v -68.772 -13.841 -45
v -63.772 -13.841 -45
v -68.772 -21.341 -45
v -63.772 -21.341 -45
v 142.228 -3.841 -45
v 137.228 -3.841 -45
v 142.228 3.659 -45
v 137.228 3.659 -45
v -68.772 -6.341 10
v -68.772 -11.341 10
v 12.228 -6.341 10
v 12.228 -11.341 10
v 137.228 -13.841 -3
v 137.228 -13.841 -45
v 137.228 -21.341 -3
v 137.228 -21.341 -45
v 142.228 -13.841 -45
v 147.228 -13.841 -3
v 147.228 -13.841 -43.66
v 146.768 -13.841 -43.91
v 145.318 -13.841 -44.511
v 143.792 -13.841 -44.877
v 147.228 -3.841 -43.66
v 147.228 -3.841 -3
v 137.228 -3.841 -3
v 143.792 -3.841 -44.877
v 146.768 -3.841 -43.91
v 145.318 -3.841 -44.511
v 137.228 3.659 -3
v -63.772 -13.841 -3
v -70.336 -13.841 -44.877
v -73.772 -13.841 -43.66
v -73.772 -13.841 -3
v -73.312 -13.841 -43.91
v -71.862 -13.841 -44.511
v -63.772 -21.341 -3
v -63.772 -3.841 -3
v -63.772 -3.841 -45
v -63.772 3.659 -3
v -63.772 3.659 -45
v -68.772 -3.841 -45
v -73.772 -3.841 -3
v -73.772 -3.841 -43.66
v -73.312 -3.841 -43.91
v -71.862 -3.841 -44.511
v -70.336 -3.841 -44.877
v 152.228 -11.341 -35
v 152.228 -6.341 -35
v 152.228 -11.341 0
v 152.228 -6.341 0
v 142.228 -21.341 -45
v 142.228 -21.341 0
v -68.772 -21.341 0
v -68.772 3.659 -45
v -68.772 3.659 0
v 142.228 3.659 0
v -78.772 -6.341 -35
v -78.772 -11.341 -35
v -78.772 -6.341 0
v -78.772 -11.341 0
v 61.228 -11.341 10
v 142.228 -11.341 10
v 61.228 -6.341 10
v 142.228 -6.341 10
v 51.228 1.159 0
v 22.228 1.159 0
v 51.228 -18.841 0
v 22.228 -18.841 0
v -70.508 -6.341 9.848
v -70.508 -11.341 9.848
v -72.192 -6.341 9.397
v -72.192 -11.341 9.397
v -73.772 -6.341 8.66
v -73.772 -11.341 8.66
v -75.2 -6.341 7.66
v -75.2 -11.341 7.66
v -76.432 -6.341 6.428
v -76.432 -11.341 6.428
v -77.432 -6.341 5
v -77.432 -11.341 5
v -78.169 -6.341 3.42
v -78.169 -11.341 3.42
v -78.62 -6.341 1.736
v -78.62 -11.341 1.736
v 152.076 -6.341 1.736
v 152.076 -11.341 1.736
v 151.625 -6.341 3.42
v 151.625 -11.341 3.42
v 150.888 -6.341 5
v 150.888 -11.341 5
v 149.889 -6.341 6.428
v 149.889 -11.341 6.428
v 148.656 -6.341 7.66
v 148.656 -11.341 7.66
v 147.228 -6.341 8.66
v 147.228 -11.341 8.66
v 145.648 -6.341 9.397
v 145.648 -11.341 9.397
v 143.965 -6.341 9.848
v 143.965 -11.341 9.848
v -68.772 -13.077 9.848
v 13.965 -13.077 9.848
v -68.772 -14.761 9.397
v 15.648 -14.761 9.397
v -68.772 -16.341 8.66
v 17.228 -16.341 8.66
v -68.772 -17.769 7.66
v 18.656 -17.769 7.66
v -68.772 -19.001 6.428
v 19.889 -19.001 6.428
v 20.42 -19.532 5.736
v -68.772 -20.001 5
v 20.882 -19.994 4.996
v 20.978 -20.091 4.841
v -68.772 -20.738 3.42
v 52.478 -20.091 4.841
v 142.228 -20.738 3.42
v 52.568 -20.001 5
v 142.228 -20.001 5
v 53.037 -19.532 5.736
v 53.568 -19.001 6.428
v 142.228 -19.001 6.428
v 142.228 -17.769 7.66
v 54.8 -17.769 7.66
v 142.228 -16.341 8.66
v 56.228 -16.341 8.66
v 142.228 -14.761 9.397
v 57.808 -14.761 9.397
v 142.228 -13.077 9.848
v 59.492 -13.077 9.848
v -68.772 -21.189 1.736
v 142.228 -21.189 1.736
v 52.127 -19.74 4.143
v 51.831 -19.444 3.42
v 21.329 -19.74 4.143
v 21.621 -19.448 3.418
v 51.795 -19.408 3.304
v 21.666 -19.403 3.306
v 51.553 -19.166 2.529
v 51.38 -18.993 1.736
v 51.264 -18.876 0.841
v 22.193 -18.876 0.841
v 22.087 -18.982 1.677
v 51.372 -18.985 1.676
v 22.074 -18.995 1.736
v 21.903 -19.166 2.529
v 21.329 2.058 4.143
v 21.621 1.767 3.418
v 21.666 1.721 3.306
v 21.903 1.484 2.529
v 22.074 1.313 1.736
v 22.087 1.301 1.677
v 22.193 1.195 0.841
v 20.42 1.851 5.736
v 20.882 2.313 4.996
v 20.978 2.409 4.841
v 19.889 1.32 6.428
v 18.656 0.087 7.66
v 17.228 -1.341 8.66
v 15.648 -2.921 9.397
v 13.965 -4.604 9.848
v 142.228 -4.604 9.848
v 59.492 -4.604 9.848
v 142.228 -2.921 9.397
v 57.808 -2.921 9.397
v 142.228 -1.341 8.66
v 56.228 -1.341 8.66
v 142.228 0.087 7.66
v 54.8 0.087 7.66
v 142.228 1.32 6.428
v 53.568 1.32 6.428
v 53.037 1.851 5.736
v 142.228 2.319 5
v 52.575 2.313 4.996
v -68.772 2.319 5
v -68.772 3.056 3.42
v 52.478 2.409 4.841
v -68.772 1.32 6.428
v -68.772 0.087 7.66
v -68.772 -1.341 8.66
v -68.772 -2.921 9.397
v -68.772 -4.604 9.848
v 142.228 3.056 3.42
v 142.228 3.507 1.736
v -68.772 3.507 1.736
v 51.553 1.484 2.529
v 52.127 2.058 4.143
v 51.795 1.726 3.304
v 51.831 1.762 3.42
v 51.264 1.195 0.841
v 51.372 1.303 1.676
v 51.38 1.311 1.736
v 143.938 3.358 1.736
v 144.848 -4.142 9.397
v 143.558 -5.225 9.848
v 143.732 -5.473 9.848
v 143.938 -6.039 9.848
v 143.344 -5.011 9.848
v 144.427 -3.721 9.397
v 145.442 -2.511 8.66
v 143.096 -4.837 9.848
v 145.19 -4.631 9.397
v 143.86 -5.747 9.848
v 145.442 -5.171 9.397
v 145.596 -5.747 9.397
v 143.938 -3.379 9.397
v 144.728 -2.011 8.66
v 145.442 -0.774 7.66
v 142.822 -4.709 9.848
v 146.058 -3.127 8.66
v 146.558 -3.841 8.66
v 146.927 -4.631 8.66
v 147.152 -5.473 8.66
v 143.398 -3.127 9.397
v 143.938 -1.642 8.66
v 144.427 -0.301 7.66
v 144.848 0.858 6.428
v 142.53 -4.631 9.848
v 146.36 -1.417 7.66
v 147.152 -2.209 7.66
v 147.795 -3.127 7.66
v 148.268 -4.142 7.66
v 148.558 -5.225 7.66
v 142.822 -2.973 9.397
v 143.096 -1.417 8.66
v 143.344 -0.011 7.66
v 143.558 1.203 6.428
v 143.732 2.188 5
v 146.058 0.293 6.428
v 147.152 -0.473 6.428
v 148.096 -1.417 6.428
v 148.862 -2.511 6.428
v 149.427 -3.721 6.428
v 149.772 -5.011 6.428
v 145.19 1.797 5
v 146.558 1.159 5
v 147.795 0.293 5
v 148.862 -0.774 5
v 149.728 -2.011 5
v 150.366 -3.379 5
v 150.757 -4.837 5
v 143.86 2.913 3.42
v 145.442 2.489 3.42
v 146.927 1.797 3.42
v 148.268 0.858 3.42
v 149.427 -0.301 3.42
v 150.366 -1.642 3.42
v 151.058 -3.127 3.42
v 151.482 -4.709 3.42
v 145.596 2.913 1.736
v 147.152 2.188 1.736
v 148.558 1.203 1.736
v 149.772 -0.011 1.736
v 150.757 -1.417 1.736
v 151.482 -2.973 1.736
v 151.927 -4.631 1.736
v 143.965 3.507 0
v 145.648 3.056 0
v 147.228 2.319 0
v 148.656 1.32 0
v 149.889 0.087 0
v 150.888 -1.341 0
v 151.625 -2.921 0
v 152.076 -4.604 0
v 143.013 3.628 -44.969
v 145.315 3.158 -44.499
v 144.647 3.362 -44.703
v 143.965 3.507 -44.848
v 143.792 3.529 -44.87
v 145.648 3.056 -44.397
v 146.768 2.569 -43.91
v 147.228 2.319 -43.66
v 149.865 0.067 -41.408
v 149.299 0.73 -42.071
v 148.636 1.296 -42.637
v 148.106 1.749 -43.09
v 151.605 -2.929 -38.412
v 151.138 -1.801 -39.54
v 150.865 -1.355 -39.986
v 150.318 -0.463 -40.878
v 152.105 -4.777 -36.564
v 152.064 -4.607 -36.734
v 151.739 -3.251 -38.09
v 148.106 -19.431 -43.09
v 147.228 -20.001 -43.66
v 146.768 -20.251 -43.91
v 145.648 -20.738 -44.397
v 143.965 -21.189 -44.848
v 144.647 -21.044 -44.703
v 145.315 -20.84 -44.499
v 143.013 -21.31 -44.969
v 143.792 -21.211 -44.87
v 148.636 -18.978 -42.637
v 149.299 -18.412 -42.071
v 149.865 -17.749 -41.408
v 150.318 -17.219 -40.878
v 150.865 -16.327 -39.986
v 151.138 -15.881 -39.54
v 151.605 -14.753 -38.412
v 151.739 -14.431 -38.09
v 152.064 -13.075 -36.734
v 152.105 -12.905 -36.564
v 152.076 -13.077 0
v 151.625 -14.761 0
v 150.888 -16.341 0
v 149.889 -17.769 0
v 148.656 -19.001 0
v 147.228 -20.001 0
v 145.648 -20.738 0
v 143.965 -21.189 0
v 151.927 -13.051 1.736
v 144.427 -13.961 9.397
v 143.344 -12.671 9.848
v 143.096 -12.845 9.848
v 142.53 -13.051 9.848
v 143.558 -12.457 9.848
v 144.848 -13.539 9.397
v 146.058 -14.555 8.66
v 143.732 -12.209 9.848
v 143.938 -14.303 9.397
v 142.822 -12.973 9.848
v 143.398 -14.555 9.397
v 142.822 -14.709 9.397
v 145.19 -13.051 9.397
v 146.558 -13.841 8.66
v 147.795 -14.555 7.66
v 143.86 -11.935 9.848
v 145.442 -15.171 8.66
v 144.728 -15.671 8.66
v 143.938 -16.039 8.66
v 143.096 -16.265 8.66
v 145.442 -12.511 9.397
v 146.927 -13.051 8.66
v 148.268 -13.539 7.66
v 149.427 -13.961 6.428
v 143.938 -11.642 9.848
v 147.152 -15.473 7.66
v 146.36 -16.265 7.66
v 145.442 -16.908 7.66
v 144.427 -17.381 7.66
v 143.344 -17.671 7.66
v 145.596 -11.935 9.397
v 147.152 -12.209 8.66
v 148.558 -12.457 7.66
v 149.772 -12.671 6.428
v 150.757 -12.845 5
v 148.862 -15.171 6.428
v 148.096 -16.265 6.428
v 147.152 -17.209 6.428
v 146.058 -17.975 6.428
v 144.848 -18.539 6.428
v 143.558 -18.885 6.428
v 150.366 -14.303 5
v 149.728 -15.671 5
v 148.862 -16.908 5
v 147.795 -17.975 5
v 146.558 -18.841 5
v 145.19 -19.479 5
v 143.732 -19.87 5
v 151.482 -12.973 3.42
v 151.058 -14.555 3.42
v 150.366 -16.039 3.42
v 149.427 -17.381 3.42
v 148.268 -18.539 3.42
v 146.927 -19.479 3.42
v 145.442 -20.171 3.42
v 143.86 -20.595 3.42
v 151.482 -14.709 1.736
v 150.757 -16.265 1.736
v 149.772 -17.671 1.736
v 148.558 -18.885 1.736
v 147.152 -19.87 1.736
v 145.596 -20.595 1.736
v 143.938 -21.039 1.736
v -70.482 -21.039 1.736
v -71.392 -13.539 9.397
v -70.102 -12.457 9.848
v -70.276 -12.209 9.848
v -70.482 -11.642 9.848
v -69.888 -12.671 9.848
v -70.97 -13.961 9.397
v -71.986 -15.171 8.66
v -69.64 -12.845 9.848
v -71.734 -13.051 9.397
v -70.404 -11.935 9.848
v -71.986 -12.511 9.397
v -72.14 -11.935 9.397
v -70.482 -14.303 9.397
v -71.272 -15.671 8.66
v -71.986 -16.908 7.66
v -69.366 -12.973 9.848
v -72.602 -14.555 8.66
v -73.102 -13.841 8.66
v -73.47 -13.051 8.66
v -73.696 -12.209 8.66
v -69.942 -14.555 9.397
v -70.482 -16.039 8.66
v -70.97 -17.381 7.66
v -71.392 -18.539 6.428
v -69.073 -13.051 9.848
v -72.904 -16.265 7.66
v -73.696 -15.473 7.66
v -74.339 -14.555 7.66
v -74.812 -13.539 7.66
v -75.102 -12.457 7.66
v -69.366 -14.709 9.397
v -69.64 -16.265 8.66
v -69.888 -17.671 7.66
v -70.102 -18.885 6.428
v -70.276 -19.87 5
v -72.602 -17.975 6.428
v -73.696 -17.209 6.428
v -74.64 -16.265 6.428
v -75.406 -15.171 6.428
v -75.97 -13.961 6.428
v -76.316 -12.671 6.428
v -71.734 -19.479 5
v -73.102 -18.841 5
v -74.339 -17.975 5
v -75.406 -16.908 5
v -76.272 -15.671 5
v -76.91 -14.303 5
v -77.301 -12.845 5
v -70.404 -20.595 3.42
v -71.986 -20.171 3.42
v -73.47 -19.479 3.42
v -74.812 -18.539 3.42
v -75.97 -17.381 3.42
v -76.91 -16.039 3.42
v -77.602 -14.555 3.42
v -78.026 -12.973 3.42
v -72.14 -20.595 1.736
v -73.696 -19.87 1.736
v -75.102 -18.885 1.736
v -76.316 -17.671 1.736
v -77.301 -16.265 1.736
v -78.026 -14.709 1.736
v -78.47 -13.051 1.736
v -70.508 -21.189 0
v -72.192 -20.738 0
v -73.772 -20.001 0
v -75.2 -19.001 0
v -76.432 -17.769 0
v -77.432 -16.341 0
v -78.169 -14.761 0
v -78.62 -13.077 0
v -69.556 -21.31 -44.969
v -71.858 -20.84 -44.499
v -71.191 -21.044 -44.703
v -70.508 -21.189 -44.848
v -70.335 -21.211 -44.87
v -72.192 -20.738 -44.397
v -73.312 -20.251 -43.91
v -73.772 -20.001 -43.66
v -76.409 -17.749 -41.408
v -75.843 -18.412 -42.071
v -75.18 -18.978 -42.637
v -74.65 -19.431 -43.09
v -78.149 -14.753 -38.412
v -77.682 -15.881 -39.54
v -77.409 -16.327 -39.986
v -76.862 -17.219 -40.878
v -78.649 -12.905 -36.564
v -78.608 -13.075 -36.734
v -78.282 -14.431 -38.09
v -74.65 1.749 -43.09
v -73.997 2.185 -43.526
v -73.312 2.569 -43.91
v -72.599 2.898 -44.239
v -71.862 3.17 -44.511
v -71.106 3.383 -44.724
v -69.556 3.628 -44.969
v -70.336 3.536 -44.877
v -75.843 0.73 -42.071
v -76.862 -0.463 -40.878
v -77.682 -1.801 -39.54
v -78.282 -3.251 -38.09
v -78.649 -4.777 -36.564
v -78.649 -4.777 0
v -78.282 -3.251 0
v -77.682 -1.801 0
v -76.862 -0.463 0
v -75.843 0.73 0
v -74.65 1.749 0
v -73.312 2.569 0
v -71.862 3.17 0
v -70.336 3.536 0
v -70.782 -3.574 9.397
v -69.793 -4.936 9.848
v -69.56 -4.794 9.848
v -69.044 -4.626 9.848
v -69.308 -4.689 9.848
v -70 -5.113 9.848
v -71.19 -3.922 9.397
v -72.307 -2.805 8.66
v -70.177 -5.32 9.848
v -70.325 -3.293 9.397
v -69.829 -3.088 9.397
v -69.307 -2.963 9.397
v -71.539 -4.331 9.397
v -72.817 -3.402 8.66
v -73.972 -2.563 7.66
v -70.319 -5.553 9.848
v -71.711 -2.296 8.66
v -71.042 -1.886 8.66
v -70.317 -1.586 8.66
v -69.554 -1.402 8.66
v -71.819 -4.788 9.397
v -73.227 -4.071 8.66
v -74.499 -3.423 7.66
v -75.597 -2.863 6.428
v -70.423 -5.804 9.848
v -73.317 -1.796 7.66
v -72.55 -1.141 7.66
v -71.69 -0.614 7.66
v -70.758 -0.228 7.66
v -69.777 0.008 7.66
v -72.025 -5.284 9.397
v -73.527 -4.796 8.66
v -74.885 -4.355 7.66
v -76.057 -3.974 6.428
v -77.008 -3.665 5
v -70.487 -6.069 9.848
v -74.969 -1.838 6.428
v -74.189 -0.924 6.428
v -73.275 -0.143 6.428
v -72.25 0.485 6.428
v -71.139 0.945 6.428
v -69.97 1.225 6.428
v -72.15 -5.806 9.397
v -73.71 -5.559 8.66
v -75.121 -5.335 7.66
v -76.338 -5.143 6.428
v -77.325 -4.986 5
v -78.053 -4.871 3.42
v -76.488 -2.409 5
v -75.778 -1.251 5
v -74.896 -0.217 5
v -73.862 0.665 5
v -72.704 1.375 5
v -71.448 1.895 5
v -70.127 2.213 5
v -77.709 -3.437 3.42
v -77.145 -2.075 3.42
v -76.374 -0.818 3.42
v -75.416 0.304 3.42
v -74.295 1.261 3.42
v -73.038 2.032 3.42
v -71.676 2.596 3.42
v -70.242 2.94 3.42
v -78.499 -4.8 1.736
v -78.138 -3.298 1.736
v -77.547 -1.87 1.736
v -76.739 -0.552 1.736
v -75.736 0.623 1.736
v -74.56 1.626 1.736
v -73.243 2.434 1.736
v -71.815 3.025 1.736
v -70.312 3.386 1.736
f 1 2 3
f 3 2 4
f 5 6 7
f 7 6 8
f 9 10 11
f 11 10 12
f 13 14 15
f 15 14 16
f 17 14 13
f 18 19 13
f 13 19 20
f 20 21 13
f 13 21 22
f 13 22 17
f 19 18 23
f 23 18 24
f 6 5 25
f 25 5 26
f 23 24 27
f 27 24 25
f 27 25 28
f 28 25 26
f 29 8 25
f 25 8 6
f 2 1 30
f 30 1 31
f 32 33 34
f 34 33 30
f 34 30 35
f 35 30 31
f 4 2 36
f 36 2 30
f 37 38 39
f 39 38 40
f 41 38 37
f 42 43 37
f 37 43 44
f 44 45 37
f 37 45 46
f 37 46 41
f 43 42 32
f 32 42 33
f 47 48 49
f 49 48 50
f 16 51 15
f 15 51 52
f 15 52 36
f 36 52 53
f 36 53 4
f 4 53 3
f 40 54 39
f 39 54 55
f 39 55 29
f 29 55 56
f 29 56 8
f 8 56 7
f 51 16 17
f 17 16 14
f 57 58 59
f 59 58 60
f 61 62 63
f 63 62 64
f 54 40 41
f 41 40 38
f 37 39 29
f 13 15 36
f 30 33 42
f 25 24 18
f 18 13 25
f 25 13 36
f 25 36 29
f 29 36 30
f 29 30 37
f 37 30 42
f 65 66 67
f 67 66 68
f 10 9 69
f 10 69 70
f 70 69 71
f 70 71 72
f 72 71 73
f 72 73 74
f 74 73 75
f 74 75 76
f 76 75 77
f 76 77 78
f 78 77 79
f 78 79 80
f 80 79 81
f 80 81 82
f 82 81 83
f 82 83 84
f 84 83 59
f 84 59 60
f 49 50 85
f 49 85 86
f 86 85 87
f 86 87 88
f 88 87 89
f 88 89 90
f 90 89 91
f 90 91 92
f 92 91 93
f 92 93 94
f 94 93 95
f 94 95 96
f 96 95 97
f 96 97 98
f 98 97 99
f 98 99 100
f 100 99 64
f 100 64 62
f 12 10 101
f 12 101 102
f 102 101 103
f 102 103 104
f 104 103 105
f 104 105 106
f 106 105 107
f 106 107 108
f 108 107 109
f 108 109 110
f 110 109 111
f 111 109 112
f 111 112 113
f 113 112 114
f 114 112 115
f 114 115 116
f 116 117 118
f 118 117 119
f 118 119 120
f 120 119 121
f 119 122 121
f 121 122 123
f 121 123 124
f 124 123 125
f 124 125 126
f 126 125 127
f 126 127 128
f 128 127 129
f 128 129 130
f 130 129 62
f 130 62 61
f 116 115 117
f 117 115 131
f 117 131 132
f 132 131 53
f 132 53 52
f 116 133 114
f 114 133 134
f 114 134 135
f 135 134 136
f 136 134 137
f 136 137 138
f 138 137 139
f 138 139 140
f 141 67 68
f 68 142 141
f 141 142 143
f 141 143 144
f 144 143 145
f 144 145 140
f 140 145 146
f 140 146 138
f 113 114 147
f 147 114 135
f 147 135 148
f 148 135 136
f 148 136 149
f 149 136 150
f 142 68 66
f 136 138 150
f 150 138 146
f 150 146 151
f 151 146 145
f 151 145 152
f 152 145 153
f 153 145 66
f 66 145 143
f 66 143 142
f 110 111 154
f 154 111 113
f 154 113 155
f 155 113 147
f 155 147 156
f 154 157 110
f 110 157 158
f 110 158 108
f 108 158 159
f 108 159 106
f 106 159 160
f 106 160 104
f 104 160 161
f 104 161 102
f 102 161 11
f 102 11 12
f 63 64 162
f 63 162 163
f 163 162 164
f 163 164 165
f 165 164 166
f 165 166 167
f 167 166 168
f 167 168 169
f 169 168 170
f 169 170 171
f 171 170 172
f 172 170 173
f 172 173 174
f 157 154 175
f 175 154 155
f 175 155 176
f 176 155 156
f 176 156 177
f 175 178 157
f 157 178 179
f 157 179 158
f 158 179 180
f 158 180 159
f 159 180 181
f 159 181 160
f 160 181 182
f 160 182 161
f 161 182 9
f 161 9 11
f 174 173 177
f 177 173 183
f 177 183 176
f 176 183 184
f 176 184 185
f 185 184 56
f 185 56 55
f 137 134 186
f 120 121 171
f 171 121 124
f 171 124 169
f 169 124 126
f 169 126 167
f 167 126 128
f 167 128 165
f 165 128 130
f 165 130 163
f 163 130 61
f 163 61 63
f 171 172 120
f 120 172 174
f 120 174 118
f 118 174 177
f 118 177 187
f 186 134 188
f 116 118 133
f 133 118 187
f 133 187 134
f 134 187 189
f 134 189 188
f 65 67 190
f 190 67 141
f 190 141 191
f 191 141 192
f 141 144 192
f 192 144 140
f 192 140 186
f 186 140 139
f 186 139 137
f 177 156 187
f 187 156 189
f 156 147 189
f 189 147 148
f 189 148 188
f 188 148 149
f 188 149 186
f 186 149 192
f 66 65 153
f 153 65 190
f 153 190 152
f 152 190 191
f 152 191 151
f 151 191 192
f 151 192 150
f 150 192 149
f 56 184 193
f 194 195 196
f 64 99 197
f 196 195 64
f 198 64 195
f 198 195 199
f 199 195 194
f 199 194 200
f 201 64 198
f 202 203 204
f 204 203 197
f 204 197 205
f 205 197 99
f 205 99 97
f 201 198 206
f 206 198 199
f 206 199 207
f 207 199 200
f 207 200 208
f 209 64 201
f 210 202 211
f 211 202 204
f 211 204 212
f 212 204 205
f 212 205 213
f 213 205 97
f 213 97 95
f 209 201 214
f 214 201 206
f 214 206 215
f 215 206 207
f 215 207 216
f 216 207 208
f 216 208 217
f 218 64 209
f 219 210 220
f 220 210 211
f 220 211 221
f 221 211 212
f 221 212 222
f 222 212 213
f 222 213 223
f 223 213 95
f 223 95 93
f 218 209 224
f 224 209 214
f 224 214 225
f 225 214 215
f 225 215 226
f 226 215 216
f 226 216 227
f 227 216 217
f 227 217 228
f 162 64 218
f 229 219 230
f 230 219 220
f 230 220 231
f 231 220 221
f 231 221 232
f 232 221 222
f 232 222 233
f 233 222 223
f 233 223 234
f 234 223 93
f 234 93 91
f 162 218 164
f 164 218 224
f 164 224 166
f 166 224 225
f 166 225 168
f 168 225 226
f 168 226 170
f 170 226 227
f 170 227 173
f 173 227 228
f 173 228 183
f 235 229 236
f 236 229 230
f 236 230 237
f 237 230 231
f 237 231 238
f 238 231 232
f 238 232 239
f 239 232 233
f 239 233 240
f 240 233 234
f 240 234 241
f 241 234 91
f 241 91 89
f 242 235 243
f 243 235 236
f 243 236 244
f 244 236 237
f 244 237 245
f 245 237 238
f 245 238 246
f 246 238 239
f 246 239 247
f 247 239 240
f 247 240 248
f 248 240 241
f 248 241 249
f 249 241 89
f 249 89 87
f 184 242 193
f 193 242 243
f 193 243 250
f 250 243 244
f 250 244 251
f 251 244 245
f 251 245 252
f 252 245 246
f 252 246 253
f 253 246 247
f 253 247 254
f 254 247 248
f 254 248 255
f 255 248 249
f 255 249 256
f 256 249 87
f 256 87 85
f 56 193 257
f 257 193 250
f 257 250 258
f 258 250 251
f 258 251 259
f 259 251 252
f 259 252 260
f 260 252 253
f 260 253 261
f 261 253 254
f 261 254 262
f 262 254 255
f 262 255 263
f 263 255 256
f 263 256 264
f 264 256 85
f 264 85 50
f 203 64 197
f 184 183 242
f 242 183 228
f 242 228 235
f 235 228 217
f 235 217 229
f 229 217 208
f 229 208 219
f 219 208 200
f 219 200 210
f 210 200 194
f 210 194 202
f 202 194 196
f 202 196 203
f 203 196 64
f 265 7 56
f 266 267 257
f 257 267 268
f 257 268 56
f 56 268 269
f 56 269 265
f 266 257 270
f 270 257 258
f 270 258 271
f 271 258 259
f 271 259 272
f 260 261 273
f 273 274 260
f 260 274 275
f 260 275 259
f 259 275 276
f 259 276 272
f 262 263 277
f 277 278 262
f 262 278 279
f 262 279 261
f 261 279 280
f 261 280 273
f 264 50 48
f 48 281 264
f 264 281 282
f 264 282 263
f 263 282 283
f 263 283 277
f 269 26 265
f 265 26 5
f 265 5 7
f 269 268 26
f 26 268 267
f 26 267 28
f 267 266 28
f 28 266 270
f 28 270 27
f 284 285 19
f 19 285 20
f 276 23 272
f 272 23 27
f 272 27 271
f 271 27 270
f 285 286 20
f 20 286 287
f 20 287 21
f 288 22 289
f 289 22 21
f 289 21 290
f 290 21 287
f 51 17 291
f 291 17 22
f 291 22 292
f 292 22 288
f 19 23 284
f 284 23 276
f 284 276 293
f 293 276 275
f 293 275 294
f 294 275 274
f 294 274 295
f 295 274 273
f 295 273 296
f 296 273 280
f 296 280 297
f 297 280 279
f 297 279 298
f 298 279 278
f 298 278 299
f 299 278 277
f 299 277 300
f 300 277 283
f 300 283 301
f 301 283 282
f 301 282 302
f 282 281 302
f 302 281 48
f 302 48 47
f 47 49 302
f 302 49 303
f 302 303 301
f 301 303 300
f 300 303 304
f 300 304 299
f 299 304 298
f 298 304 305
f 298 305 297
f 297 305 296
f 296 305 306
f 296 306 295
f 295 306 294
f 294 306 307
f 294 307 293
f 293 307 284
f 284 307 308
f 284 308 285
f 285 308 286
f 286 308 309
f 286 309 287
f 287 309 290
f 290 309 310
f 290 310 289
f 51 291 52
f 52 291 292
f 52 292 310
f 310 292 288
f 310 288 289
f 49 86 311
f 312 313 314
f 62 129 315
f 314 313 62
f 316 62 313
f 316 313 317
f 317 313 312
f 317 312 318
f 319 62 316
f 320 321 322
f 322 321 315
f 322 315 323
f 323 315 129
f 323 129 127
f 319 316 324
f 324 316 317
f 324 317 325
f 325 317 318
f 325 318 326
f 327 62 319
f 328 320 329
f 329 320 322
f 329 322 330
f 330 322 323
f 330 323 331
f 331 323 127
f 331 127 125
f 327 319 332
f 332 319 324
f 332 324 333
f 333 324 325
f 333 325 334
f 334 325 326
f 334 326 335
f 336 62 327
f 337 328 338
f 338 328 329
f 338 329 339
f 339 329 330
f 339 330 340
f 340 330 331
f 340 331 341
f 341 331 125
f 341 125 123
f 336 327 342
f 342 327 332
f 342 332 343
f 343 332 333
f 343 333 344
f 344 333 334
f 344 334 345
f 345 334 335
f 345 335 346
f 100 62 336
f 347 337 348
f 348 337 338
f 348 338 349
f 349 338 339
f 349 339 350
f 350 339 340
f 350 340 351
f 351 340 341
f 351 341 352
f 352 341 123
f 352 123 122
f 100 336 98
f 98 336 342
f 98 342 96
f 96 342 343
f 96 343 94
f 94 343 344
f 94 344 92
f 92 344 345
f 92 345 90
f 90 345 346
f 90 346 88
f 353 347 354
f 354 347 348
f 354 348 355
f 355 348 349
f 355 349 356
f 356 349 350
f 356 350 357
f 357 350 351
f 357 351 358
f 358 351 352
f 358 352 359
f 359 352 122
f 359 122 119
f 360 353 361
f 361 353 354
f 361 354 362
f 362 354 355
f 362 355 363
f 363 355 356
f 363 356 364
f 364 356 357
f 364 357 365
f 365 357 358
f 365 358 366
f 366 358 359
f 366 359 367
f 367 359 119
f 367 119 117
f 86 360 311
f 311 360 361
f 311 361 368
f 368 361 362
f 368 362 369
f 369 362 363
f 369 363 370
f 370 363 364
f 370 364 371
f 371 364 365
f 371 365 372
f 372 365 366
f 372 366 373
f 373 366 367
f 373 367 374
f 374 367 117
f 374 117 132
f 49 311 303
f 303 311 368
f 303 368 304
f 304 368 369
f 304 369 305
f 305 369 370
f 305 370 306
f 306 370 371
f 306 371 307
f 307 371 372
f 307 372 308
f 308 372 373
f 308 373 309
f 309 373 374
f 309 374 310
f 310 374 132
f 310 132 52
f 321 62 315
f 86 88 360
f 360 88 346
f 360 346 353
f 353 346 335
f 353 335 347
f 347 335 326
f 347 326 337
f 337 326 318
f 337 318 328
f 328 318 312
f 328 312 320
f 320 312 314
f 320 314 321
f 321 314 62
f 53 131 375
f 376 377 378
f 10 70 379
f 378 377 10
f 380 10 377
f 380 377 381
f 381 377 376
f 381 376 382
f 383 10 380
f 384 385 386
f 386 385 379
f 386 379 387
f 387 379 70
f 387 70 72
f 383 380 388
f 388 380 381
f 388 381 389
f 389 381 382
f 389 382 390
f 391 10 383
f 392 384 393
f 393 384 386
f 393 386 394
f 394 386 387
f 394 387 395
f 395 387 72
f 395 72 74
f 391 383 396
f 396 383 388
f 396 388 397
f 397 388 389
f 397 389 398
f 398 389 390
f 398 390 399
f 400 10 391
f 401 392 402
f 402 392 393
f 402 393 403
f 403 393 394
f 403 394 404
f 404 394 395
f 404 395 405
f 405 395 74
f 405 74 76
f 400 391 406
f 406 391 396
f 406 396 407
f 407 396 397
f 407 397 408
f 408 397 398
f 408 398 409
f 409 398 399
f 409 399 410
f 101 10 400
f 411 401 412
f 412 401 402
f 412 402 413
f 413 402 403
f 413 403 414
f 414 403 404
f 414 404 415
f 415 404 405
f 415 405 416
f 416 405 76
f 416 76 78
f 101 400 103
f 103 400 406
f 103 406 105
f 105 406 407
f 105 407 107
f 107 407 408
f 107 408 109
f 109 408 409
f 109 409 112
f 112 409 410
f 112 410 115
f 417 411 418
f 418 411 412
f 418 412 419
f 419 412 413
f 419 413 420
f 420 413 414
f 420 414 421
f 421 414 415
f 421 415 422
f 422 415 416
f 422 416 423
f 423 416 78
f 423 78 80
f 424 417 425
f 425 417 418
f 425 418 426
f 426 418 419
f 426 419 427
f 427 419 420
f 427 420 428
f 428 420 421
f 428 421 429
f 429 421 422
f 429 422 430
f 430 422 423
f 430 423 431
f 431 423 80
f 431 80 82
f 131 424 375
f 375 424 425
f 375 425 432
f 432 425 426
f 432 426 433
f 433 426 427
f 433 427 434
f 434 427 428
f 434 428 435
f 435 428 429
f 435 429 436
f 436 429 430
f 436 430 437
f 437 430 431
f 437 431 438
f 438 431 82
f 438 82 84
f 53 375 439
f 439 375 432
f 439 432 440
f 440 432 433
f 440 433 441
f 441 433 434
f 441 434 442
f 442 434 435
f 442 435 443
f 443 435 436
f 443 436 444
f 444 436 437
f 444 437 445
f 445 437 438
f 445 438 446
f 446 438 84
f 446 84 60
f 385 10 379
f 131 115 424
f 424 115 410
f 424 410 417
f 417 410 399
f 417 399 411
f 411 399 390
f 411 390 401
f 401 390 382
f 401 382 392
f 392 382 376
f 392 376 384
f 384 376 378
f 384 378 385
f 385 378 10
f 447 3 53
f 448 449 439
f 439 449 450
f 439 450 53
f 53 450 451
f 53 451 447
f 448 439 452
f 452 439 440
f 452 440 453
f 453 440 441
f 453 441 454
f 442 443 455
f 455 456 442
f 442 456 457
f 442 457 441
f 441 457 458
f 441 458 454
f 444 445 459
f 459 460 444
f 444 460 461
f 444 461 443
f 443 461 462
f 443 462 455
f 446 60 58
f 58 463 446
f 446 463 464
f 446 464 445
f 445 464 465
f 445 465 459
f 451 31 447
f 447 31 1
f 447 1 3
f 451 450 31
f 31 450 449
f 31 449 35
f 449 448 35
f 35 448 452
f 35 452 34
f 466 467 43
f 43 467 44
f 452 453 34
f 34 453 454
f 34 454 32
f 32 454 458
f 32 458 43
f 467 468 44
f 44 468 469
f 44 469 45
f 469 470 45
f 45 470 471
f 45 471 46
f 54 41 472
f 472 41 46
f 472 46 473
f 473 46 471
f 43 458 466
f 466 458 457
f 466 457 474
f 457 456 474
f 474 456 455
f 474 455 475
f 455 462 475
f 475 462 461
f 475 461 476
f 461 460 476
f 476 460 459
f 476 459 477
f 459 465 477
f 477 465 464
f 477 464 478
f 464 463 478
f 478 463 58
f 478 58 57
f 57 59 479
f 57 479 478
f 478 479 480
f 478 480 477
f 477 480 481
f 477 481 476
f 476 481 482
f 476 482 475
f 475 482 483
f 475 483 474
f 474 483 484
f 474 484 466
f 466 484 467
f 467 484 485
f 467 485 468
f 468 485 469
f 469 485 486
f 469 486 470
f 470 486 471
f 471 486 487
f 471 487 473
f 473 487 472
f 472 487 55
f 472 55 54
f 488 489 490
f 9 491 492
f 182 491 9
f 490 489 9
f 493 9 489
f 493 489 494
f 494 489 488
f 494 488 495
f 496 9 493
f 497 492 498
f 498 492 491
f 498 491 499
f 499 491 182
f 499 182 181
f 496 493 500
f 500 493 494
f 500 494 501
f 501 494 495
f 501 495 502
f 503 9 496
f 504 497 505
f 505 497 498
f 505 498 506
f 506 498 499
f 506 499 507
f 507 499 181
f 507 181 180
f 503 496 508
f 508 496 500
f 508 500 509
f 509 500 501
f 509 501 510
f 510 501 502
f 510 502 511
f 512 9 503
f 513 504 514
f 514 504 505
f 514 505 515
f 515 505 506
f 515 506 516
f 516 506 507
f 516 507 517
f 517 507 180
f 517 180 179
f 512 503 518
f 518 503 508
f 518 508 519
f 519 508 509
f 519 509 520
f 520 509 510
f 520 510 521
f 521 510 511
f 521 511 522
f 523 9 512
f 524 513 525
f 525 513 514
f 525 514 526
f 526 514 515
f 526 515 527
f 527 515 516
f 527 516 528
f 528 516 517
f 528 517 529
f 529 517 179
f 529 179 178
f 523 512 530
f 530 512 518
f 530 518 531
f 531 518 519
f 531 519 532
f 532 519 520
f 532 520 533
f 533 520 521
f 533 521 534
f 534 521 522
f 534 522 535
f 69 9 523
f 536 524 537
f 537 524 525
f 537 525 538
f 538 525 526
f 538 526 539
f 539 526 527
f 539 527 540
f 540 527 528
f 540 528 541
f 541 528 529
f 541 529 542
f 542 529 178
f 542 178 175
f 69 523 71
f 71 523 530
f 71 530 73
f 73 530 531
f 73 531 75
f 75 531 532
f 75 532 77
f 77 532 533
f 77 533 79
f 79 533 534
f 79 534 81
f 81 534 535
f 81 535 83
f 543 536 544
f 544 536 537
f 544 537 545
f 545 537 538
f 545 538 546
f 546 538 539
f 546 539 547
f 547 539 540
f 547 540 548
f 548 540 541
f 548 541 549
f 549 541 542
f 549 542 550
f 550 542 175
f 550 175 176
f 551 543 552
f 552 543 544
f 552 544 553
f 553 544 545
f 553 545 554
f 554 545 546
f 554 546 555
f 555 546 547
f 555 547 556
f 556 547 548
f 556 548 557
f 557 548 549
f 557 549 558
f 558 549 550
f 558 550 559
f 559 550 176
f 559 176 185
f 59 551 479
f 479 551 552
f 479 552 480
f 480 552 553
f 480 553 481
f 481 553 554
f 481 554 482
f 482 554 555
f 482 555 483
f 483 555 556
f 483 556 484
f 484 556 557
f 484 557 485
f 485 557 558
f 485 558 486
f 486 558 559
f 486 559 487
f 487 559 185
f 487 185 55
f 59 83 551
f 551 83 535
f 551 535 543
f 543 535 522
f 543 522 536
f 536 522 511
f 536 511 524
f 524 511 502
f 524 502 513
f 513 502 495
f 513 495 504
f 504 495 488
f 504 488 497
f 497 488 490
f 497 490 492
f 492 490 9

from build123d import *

# Parameters (mm, degrees)
BOSS_EXTRUDE1_DEPTH   = 45
BOSS_EXTRUDE1_2_DEPTH = 45
SKETCH1_3_W           = 231
SKETCH1_3_H           = 25
SKETCH1_3_W_2         = 29
SKETCH1_3_H_2         = 20
BOSS_EXTRUDE2_DEPTH   = 10
BOSS_EXTRUDE3_DEPTH   = 3
FILLET1_R             = 10
FILLET2_R             = 10
FILLET3_R             = 10


with BuildPart() as part:
    # Sketch1 → Boss-Extrude1 (new body)
    with BuildSketch(Plane.XY):
        Polygon((-63.771858253, 3.659087495), (-78.771858253, 3.659087495), (-78.771858253, -21.340912505), (-63.771858253, -21.340912505), (-63.771858253, -13.840912505), (-73.771858253, -13.840912505), (-73.771858253, -3.840912505), (-63.771858253, -3.840912505), align=None)
    extrude(amount=-BOSS_EXTRUDE1_DEPTH)



with BuildPart() as body_2:
    # Sketch1 → Boss-Extrude1 2 (new body)
    with BuildSketch(Plane.XY):
        Polygon((137.228141747, 3.659087495), (137.228141747, -3.840912505), (147.228141747, -3.840912505), (147.228141747, -13.840912505), (137.228141747, -13.840912505), (137.228141747, -21.340912505), (152.228141747, -21.340912505), (152.228141747, 3.659087495), align=None)
    extrude(amount=-BOSS_EXTRUDE1_2_DEPTH)


with BuildPart() as part_1:
    add(part.part)

    add(body_2.part)  # Boss-Extrude2 merges body 2
    # Sketch1<3> → Boss-Extrude2 (add)
    with BuildSketch(Plane.XY):
        with Locations((36.728141747, -8.840912505)):
            Rectangle(SKETCH1_3_W, SKETCH1_3_H)
        with Locations((36.728141747, -8.840912505)):
            Rectangle(SKETCH1_3_W_2, SKETCH1_3_H_2, mode=Mode.SUBTRACT)
    extrude(amount=BOSS_EXTRUDE2_DEPTH)

    # Sketch1<4> → Boss-Extrude3 (add)
    with BuildSketch(Plane.XY):
        Polygon((137.228141747, 3.659087495), (-63.771858253, 3.659087495), (-63.771858253, -3.840912505), (-73.771858253, -3.840912505), (-73.771858253, -13.840912505), (-63.771858253, -13.840912505), (-63.771858253, -21.340912505), (137.228141747, -21.340912505), (137.228141747, -13.840912505), (147.228141747, -13.840912505), (147.228141747, -3.840912505), (137.228141747, -3.840912505), align=None)
    extrude(amount=-BOSS_EXTRUDE3_DEPTH)

    # Fillet1
    # the kernel refuses this fillet: 10 mm, written as the material it takes off along each edge
    with BuildSketch(Plane(origin=(22.228141747, 1.159087495, 10), x_dir=(0, 1, 0), z_dir=(1, 0, 0)), Plane(origin=(51.228141747, -18.840912505, 10), x_dir=(0, -1, 0), z_dir=(-1, 0, 0))) as fillet1_piece_1:
        with BuildLine():
            CenterArc((FILLET1_R, -FILLET1_R), FILLET1_R, 90, 90)
            Line((0, -FILLET1_R), (-FILLET1_R * 0.02, -FILLET1_R))
            Line((-FILLET1_R * 0.02, -FILLET1_R), (-FILLET1_R * 0.02, FILLET1_R * 0.02))
            Line((-FILLET1_R * 0.02, FILLET1_R * 0.02), (FILLET1_R, FILLET1_R * 0.02))
            Line((FILLET1_R, FILLET1_R * 0.02), (FILLET1_R, 0))
        make_face()
    extrude(amount=29, mode=Mode.SUBTRACT)
    with BuildSketch(Plane(origin=(22.228141747, -18.840912505, 10), x_dir=(-1, 0, 0), z_dir=(0, 1, 0)), Plane(origin=(51.228141747, 1.159087495, 10), x_dir=(1, 0, 0), z_dir=(0, -1, 0))) as fillet1_piece_2:
        with BuildLine():
            CenterArc((FILLET1_R, -FILLET1_R), FILLET1_R, 90, 90)
            Line((0, -FILLET1_R), (-FILLET1_R * 0.02, -FILLET1_R))
            Line((-FILLET1_R * 0.02, -FILLET1_R), (-FILLET1_R * 0.02, FILLET1_R * 0.02))
            Line((-FILLET1_R * 0.02, FILLET1_R * 0.02), (FILLET1_R, FILLET1_R * 0.02))
            Line((FILLET1_R, FILLET1_R * 0.02), (FILLET1_R, 0))
        make_face()
    extrude(amount=20, mode=Mode.SUBTRACT)
    with BuildSketch(Plane(origin=(-78.771858253, 3.659087495, 10), x_dir=(0, 0, -1), z_dir=(0, -1, 0))) as fillet1_piece_3:
        with BuildLine():
            CenterArc((FILLET1_R, FILLET1_R), FILLET1_R, 180, 90)
            Line((0, FILLET1_R), (-FILLET1_R * 0.02, FILLET1_R))
            Line((-FILLET1_R * 0.02, FILLET1_R), (-FILLET1_R * 0.02, -FILLET1_R * 0.02))
            Line((-FILLET1_R * 0.02, -FILLET1_R * 0.02), (FILLET1_R, -FILLET1_R * 0.02))
            Line((FILLET1_R, -FILLET1_R * 0.02), (FILLET1_R, 0))
        make_face()
    extrude(amount=25, mode=Mode.SUBTRACT)
    with BuildSketch(Plane(origin=(152.228141747, 3.659087495, 10), x_dir=(0, 0, -1), z_dir=(-1, 0, 0)), Plane(origin=(-78.771858253, -21.340912505, 10), x_dir=(0, 0, -1), z_dir=(1, 0, 0))) as fillet1_piece_4:
        with BuildLine():
            CenterArc((FILLET1_R, FILLET1_R), FILLET1_R, 180, 90)
            Line((0, FILLET1_R), (-FILLET1_R * 0.02, FILLET1_R))
            Line((-FILLET1_R * 0.02, FILLET1_R), (-FILLET1_R * 0.02, -FILLET1_R * 0.02))
            Line((-FILLET1_R * 0.02, -FILLET1_R * 0.02), (FILLET1_R, -FILLET1_R * 0.02))
            Line((FILLET1_R, -FILLET1_R * 0.02), (FILLET1_R, 0))
        make_face()
    extrude(amount=231, mode=Mode.SUBTRACT)
    with BuildSketch(Plane(origin=(152.228141747, -21.340912505, 10), x_dir=(-1, 0, 0), z_dir=(0, 1, 0))) as fillet1_piece_5:
        with BuildLine():
            CenterArc((FILLET1_R, -FILLET1_R), FILLET1_R, 90, 90)
            Line((0, -FILLET1_R), (-FILLET1_R * 0.02, -FILLET1_R))
            Line((-FILLET1_R * 0.02, -FILLET1_R), (-FILLET1_R * 0.02, FILLET1_R * 0.02))
            Line((-FILLET1_R * 0.02, FILLET1_R * 0.02), (FILLET1_R, FILLET1_R * 0.02))
            Line((FILLET1_R, FILLET1_R * 0.02), (FILLET1_R, 0))
        make_face()
    extrude(amount=25, mode=Mode.SUBTRACT)
    with BuildSketch(Plane(origin=(22.228141747, -18.840912505, 10), x_dir=(-1, 0, 0), z_dir=(0, 1, 0))) as fillet1_piece_6a_section:
        with BuildLine():
            CenterArc((FILLET1_R, -FILLET1_R), FILLET1_R, 90, 90)
            Line((0, -FILLET1_R), (-FILLET1_R * 0.02, -FILLET1_R))
            Line((-FILLET1_R * 0.02, -FILLET1_R), (-FILLET1_R * 0.02, FILLET1_R * 0.02))
            Line((-FILLET1_R * 0.02, FILLET1_R * 0.02), (FILLET1_R, FILLET1_R * 0.02))
            Line((FILLET1_R, FILLET1_R * 0.02), (FILLET1_R, 0))
        make_face()
    fillet1_piece_6a = extrude(amount=45, mode=Mode.PRIVATE)
    fillet1_piece_6a = split(fillet1_piece_6a, bisect_by=Plane(origin=(19.964190605, 1.159087495, 7.736048857), z_dir=(0, 1, 0)), keep=Keep.TOP, mode=Mode.PRIVATE)
    with BuildSketch(Plane(origin=(-2.771858253, 1.159087495, 10), x_dir=(0, 1, 0), z_dir=(1, 0, 0))) as fillet1_piece_6b_section:
        with BuildLine():
            CenterArc((FILLET1_R, -FILLET1_R), FILLET1_R, 90, 90)
            Line((0, -FILLET1_R), (-FILLET1_R * 0.02, -FILLET1_R))
            Line((-FILLET1_R * 0.02, -FILLET1_R), (-FILLET1_R * 0.02, FILLET1_R * 0.02))
            Line((-FILLET1_R * 0.02, FILLET1_R * 0.02), (FILLET1_R, FILLET1_R * 0.02))
            Line((FILLET1_R, FILLET1_R * 0.02), (FILLET1_R, 0))
        make_face()
    fillet1_piece_6b = extrude(amount=54, mode=Mode.PRIVATE)
    fillet1_piece_6b = split(fillet1_piece_6b, bisect_by=Plane(origin=(22.228141747, 3.423038638, 7.736048857), z_dir=(-1, 0, 0)), keep=Keep.TOP, mode=Mode.PRIVATE)
    fillet1_piece_6 = fillet1_piece_6a & fillet1_piece_6b
    add(fillet1_piece_6, mode=Mode.SUBTRACT)
    with BuildSketch(Plane(origin=(22.228141747, 1.159087495, 10), x_dir=(0, 1, 0), z_dir=(1, 0, 0))) as fillet1_piece_7a_section:
        with BuildLine():
            CenterArc((FILLET1_R, -FILLET1_R), FILLET1_R, 90, 90)
            Line((0, -FILLET1_R), (-FILLET1_R * 0.02, -FILLET1_R))
            Line((-FILLET1_R * 0.02, -FILLET1_R), (-FILLET1_R * 0.02, FILLET1_R * 0.02))
            Line((-FILLET1_R * 0.02, FILLET1_R * 0.02), (FILLET1_R, FILLET1_R * 0.02))
            Line((FILLET1_R, FILLET1_R * 0.02), (FILLET1_R, 0))
        make_face()
    fillet1_piece_7a = extrude(amount=54, mode=Mode.PRIVATE)
    fillet1_piece_7a = split(fillet1_piece_7a, bisect_by=Plane(origin=(51.228141747, 3.423038638, 7.736048857), z_dir=(1, 0, 0)), keep=Keep.TOP, mode=Mode.PRIVATE)
    with BuildSketch(Plane(origin=(51.228141747, 26.159087495, 10), x_dir=(1, 0, 0), z_dir=(0, -1, 0))) as fillet1_piece_7b_section:
        with BuildLine():
            CenterArc((FILLET1_R, -FILLET1_R), FILLET1_R, 90, 90)
            Line((0, -FILLET1_R), (-FILLET1_R * 0.02, -FILLET1_R))
            Line((-FILLET1_R * 0.02, -FILLET1_R), (-FILLET1_R * 0.02, FILLET1_R * 0.02))
            Line((-FILLET1_R * 0.02, FILLET1_R * 0.02), (FILLET1_R, FILLET1_R * 0.02))
            Line((FILLET1_R, FILLET1_R * 0.02), (FILLET1_R, 0))
        make_face()
    fillet1_piece_7b = extrude(amount=45, mode=Mode.PRIVATE)
    fillet1_piece_7b = split(fillet1_piece_7b, bisect_by=Plane(origin=(53.49209289, 1.159087495, 7.736048857), z_dir=(0, 1, 0)), keep=Keep.TOP, mode=Mode.PRIVATE)
    fillet1_piece_7 = fillet1_piece_7a & fillet1_piece_7b
    add(fillet1_piece_7, mode=Mode.SUBTRACT)
    with BuildSketch(Plane(origin=(51.228141747, -18.840912505, 10), x_dir=(0, -1, 0), z_dir=(-1, 0, 0))) as fillet1_piece_8a_section:
        with BuildLine():
            CenterArc((FILLET1_R, -FILLET1_R), FILLET1_R, 90, 90)
            Line((0, -FILLET1_R), (-FILLET1_R * 0.02, -FILLET1_R))
            Line((-FILLET1_R * 0.02, -FILLET1_R), (-FILLET1_R * 0.02, FILLET1_R * 0.02))
            Line((-FILLET1_R * 0.02, FILLET1_R * 0.02), (FILLET1_R, FILLET1_R * 0.02))
            Line((FILLET1_R, FILLET1_R * 0.02), (FILLET1_R, 0))
        make_face()
    fillet1_piece_8a = extrude(amount=54, mode=Mode.PRIVATE)
    fillet1_piece_8a = split(fillet1_piece_8a, bisect_by=Plane(origin=(22.228141747, -21.104863647, 7.736048857), z_dir=(-1, 0, 0)), keep=Keep.TOP, mode=Mode.PRIVATE)
    with BuildSketch(Plane(origin=(22.228141747, -43.840912505, 10), x_dir=(-1, 0, 0), z_dir=(0, 1, 0))) as fillet1_piece_8b_section:
        with BuildLine():
            CenterArc((FILLET1_R, -FILLET1_R), FILLET1_R, 90, 90)
            Line((0, -FILLET1_R), (-FILLET1_R * 0.02, -FILLET1_R))
            Line((-FILLET1_R * 0.02, -FILLET1_R), (-FILLET1_R * 0.02, FILLET1_R * 0.02))
            Line((-FILLET1_R * 0.02, FILLET1_R * 0.02), (FILLET1_R, FILLET1_R * 0.02))
            Line((FILLET1_R, FILLET1_R * 0.02), (FILLET1_R, 0))
        make_face()
    fillet1_piece_8b = extrude(amount=45, mode=Mode.PRIVATE)
    fillet1_piece_8b = split(fillet1_piece_8b, bisect_by=Plane(origin=(19.964190605, -18.840912505, 7.736048857), z_dir=(0, -1, 0)), keep=Keep.TOP, mode=Mode.PRIVATE)
    fillet1_piece_8 = fillet1_piece_8a & fillet1_piece_8b
    add(fillet1_piece_8, mode=Mode.SUBTRACT)
    with BuildSketch(Plane(origin=(76.228141747, -18.840912505, 10), x_dir=(0, -1, 0), z_dir=(-1, 0, 0))) as fillet1_piece_9a_section:
        with BuildLine():
            CenterArc((FILLET1_R, -FILLET1_R), FILLET1_R, 90, 90)
            Line((0, -FILLET1_R), (-FILLET1_R * 0.02, -FILLET1_R))
            Line((-FILLET1_R * 0.02, -FILLET1_R), (-FILLET1_R * 0.02, FILLET1_R * 0.02))
            Line((-FILLET1_R * 0.02, FILLET1_R * 0.02), (FILLET1_R, FILLET1_R * 0.02))
            Line((FILLET1_R, FILLET1_R * 0.02), (FILLET1_R, 0))
        make_face()
    fillet1_piece_9a = extrude(amount=54, mode=Mode.PRIVATE)
    fillet1_piece_9a = split(fillet1_piece_9a, bisect_by=Plane(origin=(51.228141747, -21.104863647, 7.736048857), z_dir=(1, 0, 0)), keep=Keep.TOP, mode=Mode.PRIVATE)
    with BuildSketch(Plane(origin=(51.228141747, 1.159087495, 10), x_dir=(1, 0, 0), z_dir=(0, -1, 0))) as fillet1_piece_9b_section:
        with BuildLine():
            CenterArc((FILLET1_R, -FILLET1_R), FILLET1_R, 90, 90)
            Line((0, -FILLET1_R), (-FILLET1_R * 0.02, -FILLET1_R))
            Line((-FILLET1_R * 0.02, -FILLET1_R), (-FILLET1_R * 0.02, FILLET1_R * 0.02))
            Line((-FILLET1_R * 0.02, FILLET1_R * 0.02), (FILLET1_R, FILLET1_R * 0.02))
            Line((FILLET1_R, FILLET1_R * 0.02), (FILLET1_R, 0))
        make_face()
    fillet1_piece_9b = extrude(amount=45, mode=Mode.PRIVATE)
    fillet1_piece_9b = split(fillet1_piece_9b, bisect_by=Plane(origin=(53.49209289, -18.840912505, 7.736048857), z_dir=(0, -1, 0)), keep=Keep.TOP, mode=Mode.PRIVATE)
    fillet1_piece_9 = fillet1_piece_9a & fillet1_piece_9b
    add(fillet1_piece_9, mode=Mode.SUBTRACT)
    with BuildSketch(Plane(origin=(152.228141747, 3.659087495, 10), x_dir=(0, 0, -1), z_dir=(-1, 0, 0))) as fillet1_piece_10a_section:
        with BuildLine():
            CenterArc((FILLET1_R, FILLET1_R), FILLET1_R, 180, 90)
            Line((0, FILLET1_R), (-FILLET1_R * 0.02, FILLET1_R))
            Line((-FILLET1_R * 0.02, FILLET1_R), (-FILLET1_R * 0.02, -FILLET1_R * 0.02))
            Line((-FILLET1_R * 0.02, -FILLET1_R * 0.02), (FILLET1_R, -FILLET1_R * 0.02))
            Line((FILLET1_R, -FILLET1_R * 0.02), (FILLET1_R, 0))
        make_face()
    fillet1_piece_10a = extrude(amount=256, mode=Mode.PRIVATE)
    fillet1_piece_10a = split(fillet1_piece_10a, bisect_by=Plane(origin=(-78.771858253, 1.395136353, 7.736048857), z_dir=(-1, 0, 0)), keep=Keep.TOP, mode=Mode.PRIVATE)
    with BuildSketch(Plane(origin=(-78.771858253, 28.659087495, 10), x_dir=(0, 0, -1), z_dir=(0, -1, 0))) as fillet1_piece_10b_section:
        with BuildLine():
            CenterArc((FILLET1_R, FILLET1_R), FILLET1_R, 180, 90)
            Line((0, FILLET1_R), (-FILLET1_R * 0.02, FILLET1_R))
            Line((-FILLET1_R * 0.02, FILLET1_R), (-FILLET1_R * 0.02, -FILLET1_R * 0.02))
            Line((-FILLET1_R * 0.02, -FILLET1_R * 0.02), (FILLET1_R, -FILLET1_R * 0.02))
            Line((FILLET1_R, -FILLET1_R * 0.02), (FILLET1_R, 0))
        make_face()
    fillet1_piece_10b = extrude(amount=50, mode=Mode.PRIVATE)
    fillet1_piece_10b = split(fillet1_piece_10b, bisect_by=Plane(origin=(-76.50790711, 3.659087495, 7.736048857), z_dir=(0, 1, 0)), keep=Keep.TOP, mode=Mode.PRIVATE)
    fillet1_piece_10 = fillet1_piece_10a & fillet1_piece_10b
    add(fillet1_piece_10, mode=Mode.SUBTRACT)
    with BuildSketch(Plane(origin=(-103.771858253, -21.340912505, 10), x_dir=(0, 0, -1), z_dir=(1, 0, 0))) as fillet1_piece_11a_section:
        with BuildLine():
            CenterArc((FILLET1_R, FILLET1_R), FILLET1_R, 180, 90)
            Line((0, FILLET1_R), (-FILLET1_R * 0.02, FILLET1_R))
            Line((-FILLET1_R * 0.02, FILLET1_R), (-FILLET1_R * 0.02, -FILLET1_R * 0.02))
            Line((-FILLET1_R * 0.02, -FILLET1_R * 0.02), (FILLET1_R, -FILLET1_R * 0.02))
            Line((FILLET1_R, -FILLET1_R * 0.02), (FILLET1_R, 0))
        make_face()
    fillet1_piece_11a = extrude(amount=256, mode=Mode.PRIVATE)
    fillet1_piece_11a = split(fillet1_piece_11a, bisect_by=Plane(origin=(-78.771858253, -19.076961362, 7.736048857), z_dir=(-1, 0, 0)), keep=Keep.TOP, mode=Mode.PRIVATE)
    with BuildSketch(Plane(origin=(-78.771858253, 3.659087495, 10), x_dir=(0, 0, -1), z_dir=(0, -1, 0))) as fillet1_piece_11b_section:
        with BuildLine():
            CenterArc((FILLET1_R, FILLET1_R), FILLET1_R, 180, 90)
            Line((0, FILLET1_R), (-FILLET1_R * 0.02, FILLET1_R))
            Line((-FILLET1_R * 0.02, FILLET1_R), (-FILLET1_R * 0.02, -FILLET1_R * 0.02))
            Line((-FILLET1_R * 0.02, -FILLET1_R * 0.02), (FILLET1_R, -FILLET1_R * 0.02))
            Line((FILLET1_R, -FILLET1_R * 0.02), (FILLET1_R, 0))
        make_face()
    fillet1_piece_11b = extrude(amount=50, mode=Mode.PRIVATE)
    fillet1_piece_11b = split(fillet1_piece_11b, bisect_by=Plane(origin=(-76.50790711, -21.340912505, 7.736048857), z_dir=(0, -1, 0)), keep=Keep.TOP, mode=Mode.PRIVATE)
    fillet1_piece_11 = fillet1_piece_11a & fillet1_piece_11b
    add(fillet1_piece_11, mode=Mode.SUBTRACT)
    with BuildSketch(Plane(origin=(177.228141747, 3.659087495, 10), x_dir=(0, 0, -1), z_dir=(-1, 0, 0))) as fillet1_piece_12a_section:
        with BuildLine():
            CenterArc((FILLET1_R, FILLET1_R), FILLET1_R, 180, 90)
            Line((0, FILLET1_R), (-FILLET1_R * 0.02, FILLET1_R))
            Line((-FILLET1_R * 0.02, FILLET1_R), (-FILLET1_R * 0.02, -FILLET1_R * 0.02))
            Line((-FILLET1_R * 0.02, -FILLET1_R * 0.02), (FILLET1_R, -FILLET1_R * 0.02))
            Line((FILLET1_R, -FILLET1_R * 0.02), (FILLET1_R, 0))
        make_face()
    fillet1_piece_12a = extrude(amount=256, mode=Mode.PRIVATE)
    fillet1_piece_12a = split(fillet1_piece_12a, bisect_by=Plane(origin=(152.228141747, 1.395136353, 7.736048857), z_dir=(1, 0, 0)), keep=Keep.TOP, mode=Mode.PRIVATE)
    with BuildSketch(Plane(origin=(152.228141747, -21.340912505, 10), x_dir=(-1, 0, 0), z_dir=(0, 1, 0))) as fillet1_piece_12b_section:
        with BuildLine():
            CenterArc((FILLET1_R, -FILLET1_R), FILLET1_R, 90, 90)
            Line((0, -FILLET1_R), (-FILLET1_R * 0.02, -FILLET1_R))
            Line((-FILLET1_R * 0.02, -FILLET1_R), (-FILLET1_R * 0.02, FILLET1_R * 0.02))
            Line((-FILLET1_R * 0.02, FILLET1_R * 0.02), (FILLET1_R, FILLET1_R * 0.02))
            Line((FILLET1_R, FILLET1_R * 0.02), (FILLET1_R, 0))
        make_face()
    fillet1_piece_12b = extrude(amount=50, mode=Mode.PRIVATE)
    fillet1_piece_12b = split(fillet1_piece_12b, bisect_by=Plane(origin=(149.964190605, 3.659087495, 7.736048857), z_dir=(0, 1, 0)), keep=Keep.TOP, mode=Mode.PRIVATE)
    fillet1_piece_12 = fillet1_piece_12a & fillet1_piece_12b
    add(fillet1_piece_12, mode=Mode.SUBTRACT)
    with BuildSketch(Plane(origin=(-78.771858253, -21.340912505, 10), x_dir=(0, 0, -1), z_dir=(1, 0, 0))) as fillet1_piece_13a_section:
        with BuildLine():
            CenterArc((FILLET1_R, FILLET1_R), FILLET1_R, 180, 90)
            Line((0, FILLET1_R), (-FILLET1_R * 0.02, FILLET1_R))
            Line((-FILLET1_R * 0.02, FILLET1_R), (-FILLET1_R * 0.02, -FILLET1_R * 0.02))
            Line((-FILLET1_R * 0.02, -FILLET1_R * 0.02), (FILLET1_R, -FILLET1_R * 0.02))
            Line((FILLET1_R, -FILLET1_R * 0.02), (FILLET1_R, 0))
        make_face()
    fillet1_piece_13a = extrude(amount=256, mode=Mode.PRIVATE)
    fillet1_piece_13a = split(fillet1_piece_13a, bisect_by=Plane(origin=(152.228141747, -19.076961362, 7.736048857), z_dir=(1, 0, 0)), keep=Keep.TOP, mode=Mode.PRIVATE)
    with BuildSketch(Plane(origin=(152.228141747, -46.340912505, 10), x_dir=(-1, 0, 0), z_dir=(0, 1, 0))) as fillet1_piece_13b_section:
        with BuildLine():
            CenterArc((FILLET1_R, -FILLET1_R), FILLET1_R, 90, 90)
            Line((0, -FILLET1_R), (-FILLET1_R * 0.02, -FILLET1_R))
            Line((-FILLET1_R * 0.02, -FILLET1_R), (-FILLET1_R * 0.02, FILLET1_R * 0.02))
            Line((-FILLET1_R * 0.02, FILLET1_R * 0.02), (FILLET1_R, FILLET1_R * 0.02))
            Line((FILLET1_R, FILLET1_R * 0.02), (FILLET1_R, 0))
        make_face()
    fillet1_piece_13b = extrude(amount=50, mode=Mode.PRIVATE)
    fillet1_piece_13b = split(fillet1_piece_13b, bisect_by=Plane(origin=(149.964190605, -21.340912505, 7.736048857), z_dir=(0, -1, 0)), keep=Keep.TOP, mode=Mode.PRIVATE)
    fillet1_piece_13 = fillet1_piece_13a & fillet1_piece_13b
    add(fillet1_piece_13, mode=Mode.SUBTRACT)

    # Fillet2
    # the kernel refuses this fillet: 10 mm, written as the material it takes off along each edge
    with BuildSketch(Plane(origin=(142.228141747, -11.340912505, 0), x_dir=(1, 0, 0), z_dir=(0, -1, 0))) as fillet2_piece_1_section:
        Polygon((0, 0), (FILLET2_R, 0), (FILLET2_R, FILLET2_R), (0, FILLET2_R), align=None)
    fillet2_piece_1 = extrude(amount=FILLET2_R, mode=Mode.PRIVATE)
    fillet2_piece_1 = fillet2_piece_1 - Plane(origin=(142.228141747, -11.340912505, 0), x_dir=(-0.7071067811865475, 0, -0.7071067811865475), z_dir=(0, -1, 0)) * Sphere(FILLET2_R, mode=Mode.PRIVATE)
    add(fillet2_piece_1, mode=Mode.SUBTRACT)
    with BuildSketch(Plane(origin=(142.228141747, -6.340912505, 0), x_dir=(1, 0, 0), z_dir=(0, 1, 0))) as fillet2_piece_2_section:
        Polygon((0, 0), (FILLET2_R, 0), (FILLET2_R, -FILLET2_R), (0, -FILLET2_R), align=None)
    fillet2_piece_2 = extrude(amount=FILLET2_R, mode=Mode.PRIVATE)
    fillet2_piece_2 = fillet2_piece_2 - Plane(origin=(142.228141747, -6.340912505, 0), x_dir=(-0.7071067811865475, 0, -0.7071067811865475), z_dir=(0, 1, 0)) * Sphere(FILLET2_R, mode=Mode.PRIVATE)
    add(fillet2_piece_2, mode=Mode.SUBTRACT)
    with BuildSketch(Plane(origin=(152.228141747, -46.340912505, -45), x_dir=(-1, 0, 0), z_dir=(0, 1, 0))) as fillet2_piece_3:
        with BuildLine():
            CenterArc((FILLET2_R, FILLET2_R), FILLET2_R, 180, 90)
            Line((0, FILLET2_R), (0, 0))
            Line((0, 0), (FILLET2_R, 0))
        make_face()
    extrude(amount=75, mode=Mode.SUBTRACT)
    with BuildSketch(Plane(origin=(152.228141747, -21.340912505, -70), x_dir=(-1, 0, 0), z_dir=(0, 0, 1)), Plane(origin=(152.228141747, 3.659087495, 0), x_dir=(-1, 0, 0), z_dir=(0, 0, -1))) as fillet2_piece_4:
        with BuildLine():
            CenterArc((FILLET2_R, -FILLET2_R), FILLET2_R, 90, 90)
            Line((0, -FILLET2_R), (0, 0))
            Line((0, 0), (FILLET2_R, 0))
        make_face()
    extrude(amount=70, mode=Mode.SUBTRACT)

    # Fillet3
    # the kernel refuses this fillet: 10 mm, written as the material it takes off along each edge
    with BuildSketch(Plane(origin=(-68.771858253, -6.340912505, 0), x_dir=(-1, 0, 0), z_dir=(0, 1, 0))) as fillet3_piece_1_section:
        Polygon((0, 0), (FILLET3_R, 0), (FILLET3_R, FILLET3_R), (0, FILLET3_R), align=None)
    fillet3_piece_1 = extrude(amount=FILLET3_R, mode=Mode.PRIVATE)
    fillet3_piece_1 = fillet3_piece_1 - Plane(origin=(-68.771858253, -6.340912505, 0), x_dir=(0.7071067811865475, 0, -0.7071067811865475), z_dir=(0, 1, 0)) * Sphere(FILLET3_R, mode=Mode.PRIVATE)
    add(fillet3_piece_1, mode=Mode.SUBTRACT)
    with BuildSketch(Plane(origin=(-68.771858253, -11.340912505, 0), x_dir=(-1, 0, 0), z_dir=(0, -1, 0))) as fillet3_piece_2_section:
        Polygon((0, 0), (FILLET3_R, 0), (FILLET3_R, -FILLET3_R), (0, -FILLET3_R), align=None)
    fillet3_piece_2 = extrude(amount=FILLET3_R, mode=Mode.PRIVATE)
    fillet3_piece_2 = fillet3_piece_2 - Plane(origin=(-68.771858253, -11.340912505, 0), x_dir=(0.7071067811865475, 0, -0.7071067811865475), z_dir=(0, -1, 0)) * Sphere(FILLET3_R, mode=Mode.PRIVATE)
    add(fillet3_piece_2, mode=Mode.SUBTRACT)
    with BuildSketch(Plane(origin=(-78.771858253, -21.340912505, 0), x_dir=(1, 0, 0), z_dir=(0, 0, -1)), Plane(origin=(-78.771858253, 3.659087495, -70), x_dir=(1, 0, 0), z_dir=(0, 0, 1))) as fillet3_piece_3:
        with BuildLine():
            CenterArc((FILLET3_R, -FILLET3_R), FILLET3_R, 90, 90)
            Line((0, -FILLET3_R), (0, 0))
            Line((0, 0), (FILLET3_R, 0))
        make_face()
    extrude(amount=70, mode=Mode.SUBTRACT)
    with BuildSketch(Plane(origin=(-78.771858253, 28.659087495, -45), x_dir=(1, 0, 0), z_dir=(0, -1, 0))) as fillet3_piece_4:
        with BuildLine():
            CenterArc((FILLET3_R, FILLET3_R), FILLET3_R, 180, 90)
            Line((0, FILLET3_R), (0, 0))
            Line((0, 0), (FILLET3_R, 0))
        make_face()
    extrude(amount=75, mode=Mode.SUBTRACT)


solid = part_1.part
